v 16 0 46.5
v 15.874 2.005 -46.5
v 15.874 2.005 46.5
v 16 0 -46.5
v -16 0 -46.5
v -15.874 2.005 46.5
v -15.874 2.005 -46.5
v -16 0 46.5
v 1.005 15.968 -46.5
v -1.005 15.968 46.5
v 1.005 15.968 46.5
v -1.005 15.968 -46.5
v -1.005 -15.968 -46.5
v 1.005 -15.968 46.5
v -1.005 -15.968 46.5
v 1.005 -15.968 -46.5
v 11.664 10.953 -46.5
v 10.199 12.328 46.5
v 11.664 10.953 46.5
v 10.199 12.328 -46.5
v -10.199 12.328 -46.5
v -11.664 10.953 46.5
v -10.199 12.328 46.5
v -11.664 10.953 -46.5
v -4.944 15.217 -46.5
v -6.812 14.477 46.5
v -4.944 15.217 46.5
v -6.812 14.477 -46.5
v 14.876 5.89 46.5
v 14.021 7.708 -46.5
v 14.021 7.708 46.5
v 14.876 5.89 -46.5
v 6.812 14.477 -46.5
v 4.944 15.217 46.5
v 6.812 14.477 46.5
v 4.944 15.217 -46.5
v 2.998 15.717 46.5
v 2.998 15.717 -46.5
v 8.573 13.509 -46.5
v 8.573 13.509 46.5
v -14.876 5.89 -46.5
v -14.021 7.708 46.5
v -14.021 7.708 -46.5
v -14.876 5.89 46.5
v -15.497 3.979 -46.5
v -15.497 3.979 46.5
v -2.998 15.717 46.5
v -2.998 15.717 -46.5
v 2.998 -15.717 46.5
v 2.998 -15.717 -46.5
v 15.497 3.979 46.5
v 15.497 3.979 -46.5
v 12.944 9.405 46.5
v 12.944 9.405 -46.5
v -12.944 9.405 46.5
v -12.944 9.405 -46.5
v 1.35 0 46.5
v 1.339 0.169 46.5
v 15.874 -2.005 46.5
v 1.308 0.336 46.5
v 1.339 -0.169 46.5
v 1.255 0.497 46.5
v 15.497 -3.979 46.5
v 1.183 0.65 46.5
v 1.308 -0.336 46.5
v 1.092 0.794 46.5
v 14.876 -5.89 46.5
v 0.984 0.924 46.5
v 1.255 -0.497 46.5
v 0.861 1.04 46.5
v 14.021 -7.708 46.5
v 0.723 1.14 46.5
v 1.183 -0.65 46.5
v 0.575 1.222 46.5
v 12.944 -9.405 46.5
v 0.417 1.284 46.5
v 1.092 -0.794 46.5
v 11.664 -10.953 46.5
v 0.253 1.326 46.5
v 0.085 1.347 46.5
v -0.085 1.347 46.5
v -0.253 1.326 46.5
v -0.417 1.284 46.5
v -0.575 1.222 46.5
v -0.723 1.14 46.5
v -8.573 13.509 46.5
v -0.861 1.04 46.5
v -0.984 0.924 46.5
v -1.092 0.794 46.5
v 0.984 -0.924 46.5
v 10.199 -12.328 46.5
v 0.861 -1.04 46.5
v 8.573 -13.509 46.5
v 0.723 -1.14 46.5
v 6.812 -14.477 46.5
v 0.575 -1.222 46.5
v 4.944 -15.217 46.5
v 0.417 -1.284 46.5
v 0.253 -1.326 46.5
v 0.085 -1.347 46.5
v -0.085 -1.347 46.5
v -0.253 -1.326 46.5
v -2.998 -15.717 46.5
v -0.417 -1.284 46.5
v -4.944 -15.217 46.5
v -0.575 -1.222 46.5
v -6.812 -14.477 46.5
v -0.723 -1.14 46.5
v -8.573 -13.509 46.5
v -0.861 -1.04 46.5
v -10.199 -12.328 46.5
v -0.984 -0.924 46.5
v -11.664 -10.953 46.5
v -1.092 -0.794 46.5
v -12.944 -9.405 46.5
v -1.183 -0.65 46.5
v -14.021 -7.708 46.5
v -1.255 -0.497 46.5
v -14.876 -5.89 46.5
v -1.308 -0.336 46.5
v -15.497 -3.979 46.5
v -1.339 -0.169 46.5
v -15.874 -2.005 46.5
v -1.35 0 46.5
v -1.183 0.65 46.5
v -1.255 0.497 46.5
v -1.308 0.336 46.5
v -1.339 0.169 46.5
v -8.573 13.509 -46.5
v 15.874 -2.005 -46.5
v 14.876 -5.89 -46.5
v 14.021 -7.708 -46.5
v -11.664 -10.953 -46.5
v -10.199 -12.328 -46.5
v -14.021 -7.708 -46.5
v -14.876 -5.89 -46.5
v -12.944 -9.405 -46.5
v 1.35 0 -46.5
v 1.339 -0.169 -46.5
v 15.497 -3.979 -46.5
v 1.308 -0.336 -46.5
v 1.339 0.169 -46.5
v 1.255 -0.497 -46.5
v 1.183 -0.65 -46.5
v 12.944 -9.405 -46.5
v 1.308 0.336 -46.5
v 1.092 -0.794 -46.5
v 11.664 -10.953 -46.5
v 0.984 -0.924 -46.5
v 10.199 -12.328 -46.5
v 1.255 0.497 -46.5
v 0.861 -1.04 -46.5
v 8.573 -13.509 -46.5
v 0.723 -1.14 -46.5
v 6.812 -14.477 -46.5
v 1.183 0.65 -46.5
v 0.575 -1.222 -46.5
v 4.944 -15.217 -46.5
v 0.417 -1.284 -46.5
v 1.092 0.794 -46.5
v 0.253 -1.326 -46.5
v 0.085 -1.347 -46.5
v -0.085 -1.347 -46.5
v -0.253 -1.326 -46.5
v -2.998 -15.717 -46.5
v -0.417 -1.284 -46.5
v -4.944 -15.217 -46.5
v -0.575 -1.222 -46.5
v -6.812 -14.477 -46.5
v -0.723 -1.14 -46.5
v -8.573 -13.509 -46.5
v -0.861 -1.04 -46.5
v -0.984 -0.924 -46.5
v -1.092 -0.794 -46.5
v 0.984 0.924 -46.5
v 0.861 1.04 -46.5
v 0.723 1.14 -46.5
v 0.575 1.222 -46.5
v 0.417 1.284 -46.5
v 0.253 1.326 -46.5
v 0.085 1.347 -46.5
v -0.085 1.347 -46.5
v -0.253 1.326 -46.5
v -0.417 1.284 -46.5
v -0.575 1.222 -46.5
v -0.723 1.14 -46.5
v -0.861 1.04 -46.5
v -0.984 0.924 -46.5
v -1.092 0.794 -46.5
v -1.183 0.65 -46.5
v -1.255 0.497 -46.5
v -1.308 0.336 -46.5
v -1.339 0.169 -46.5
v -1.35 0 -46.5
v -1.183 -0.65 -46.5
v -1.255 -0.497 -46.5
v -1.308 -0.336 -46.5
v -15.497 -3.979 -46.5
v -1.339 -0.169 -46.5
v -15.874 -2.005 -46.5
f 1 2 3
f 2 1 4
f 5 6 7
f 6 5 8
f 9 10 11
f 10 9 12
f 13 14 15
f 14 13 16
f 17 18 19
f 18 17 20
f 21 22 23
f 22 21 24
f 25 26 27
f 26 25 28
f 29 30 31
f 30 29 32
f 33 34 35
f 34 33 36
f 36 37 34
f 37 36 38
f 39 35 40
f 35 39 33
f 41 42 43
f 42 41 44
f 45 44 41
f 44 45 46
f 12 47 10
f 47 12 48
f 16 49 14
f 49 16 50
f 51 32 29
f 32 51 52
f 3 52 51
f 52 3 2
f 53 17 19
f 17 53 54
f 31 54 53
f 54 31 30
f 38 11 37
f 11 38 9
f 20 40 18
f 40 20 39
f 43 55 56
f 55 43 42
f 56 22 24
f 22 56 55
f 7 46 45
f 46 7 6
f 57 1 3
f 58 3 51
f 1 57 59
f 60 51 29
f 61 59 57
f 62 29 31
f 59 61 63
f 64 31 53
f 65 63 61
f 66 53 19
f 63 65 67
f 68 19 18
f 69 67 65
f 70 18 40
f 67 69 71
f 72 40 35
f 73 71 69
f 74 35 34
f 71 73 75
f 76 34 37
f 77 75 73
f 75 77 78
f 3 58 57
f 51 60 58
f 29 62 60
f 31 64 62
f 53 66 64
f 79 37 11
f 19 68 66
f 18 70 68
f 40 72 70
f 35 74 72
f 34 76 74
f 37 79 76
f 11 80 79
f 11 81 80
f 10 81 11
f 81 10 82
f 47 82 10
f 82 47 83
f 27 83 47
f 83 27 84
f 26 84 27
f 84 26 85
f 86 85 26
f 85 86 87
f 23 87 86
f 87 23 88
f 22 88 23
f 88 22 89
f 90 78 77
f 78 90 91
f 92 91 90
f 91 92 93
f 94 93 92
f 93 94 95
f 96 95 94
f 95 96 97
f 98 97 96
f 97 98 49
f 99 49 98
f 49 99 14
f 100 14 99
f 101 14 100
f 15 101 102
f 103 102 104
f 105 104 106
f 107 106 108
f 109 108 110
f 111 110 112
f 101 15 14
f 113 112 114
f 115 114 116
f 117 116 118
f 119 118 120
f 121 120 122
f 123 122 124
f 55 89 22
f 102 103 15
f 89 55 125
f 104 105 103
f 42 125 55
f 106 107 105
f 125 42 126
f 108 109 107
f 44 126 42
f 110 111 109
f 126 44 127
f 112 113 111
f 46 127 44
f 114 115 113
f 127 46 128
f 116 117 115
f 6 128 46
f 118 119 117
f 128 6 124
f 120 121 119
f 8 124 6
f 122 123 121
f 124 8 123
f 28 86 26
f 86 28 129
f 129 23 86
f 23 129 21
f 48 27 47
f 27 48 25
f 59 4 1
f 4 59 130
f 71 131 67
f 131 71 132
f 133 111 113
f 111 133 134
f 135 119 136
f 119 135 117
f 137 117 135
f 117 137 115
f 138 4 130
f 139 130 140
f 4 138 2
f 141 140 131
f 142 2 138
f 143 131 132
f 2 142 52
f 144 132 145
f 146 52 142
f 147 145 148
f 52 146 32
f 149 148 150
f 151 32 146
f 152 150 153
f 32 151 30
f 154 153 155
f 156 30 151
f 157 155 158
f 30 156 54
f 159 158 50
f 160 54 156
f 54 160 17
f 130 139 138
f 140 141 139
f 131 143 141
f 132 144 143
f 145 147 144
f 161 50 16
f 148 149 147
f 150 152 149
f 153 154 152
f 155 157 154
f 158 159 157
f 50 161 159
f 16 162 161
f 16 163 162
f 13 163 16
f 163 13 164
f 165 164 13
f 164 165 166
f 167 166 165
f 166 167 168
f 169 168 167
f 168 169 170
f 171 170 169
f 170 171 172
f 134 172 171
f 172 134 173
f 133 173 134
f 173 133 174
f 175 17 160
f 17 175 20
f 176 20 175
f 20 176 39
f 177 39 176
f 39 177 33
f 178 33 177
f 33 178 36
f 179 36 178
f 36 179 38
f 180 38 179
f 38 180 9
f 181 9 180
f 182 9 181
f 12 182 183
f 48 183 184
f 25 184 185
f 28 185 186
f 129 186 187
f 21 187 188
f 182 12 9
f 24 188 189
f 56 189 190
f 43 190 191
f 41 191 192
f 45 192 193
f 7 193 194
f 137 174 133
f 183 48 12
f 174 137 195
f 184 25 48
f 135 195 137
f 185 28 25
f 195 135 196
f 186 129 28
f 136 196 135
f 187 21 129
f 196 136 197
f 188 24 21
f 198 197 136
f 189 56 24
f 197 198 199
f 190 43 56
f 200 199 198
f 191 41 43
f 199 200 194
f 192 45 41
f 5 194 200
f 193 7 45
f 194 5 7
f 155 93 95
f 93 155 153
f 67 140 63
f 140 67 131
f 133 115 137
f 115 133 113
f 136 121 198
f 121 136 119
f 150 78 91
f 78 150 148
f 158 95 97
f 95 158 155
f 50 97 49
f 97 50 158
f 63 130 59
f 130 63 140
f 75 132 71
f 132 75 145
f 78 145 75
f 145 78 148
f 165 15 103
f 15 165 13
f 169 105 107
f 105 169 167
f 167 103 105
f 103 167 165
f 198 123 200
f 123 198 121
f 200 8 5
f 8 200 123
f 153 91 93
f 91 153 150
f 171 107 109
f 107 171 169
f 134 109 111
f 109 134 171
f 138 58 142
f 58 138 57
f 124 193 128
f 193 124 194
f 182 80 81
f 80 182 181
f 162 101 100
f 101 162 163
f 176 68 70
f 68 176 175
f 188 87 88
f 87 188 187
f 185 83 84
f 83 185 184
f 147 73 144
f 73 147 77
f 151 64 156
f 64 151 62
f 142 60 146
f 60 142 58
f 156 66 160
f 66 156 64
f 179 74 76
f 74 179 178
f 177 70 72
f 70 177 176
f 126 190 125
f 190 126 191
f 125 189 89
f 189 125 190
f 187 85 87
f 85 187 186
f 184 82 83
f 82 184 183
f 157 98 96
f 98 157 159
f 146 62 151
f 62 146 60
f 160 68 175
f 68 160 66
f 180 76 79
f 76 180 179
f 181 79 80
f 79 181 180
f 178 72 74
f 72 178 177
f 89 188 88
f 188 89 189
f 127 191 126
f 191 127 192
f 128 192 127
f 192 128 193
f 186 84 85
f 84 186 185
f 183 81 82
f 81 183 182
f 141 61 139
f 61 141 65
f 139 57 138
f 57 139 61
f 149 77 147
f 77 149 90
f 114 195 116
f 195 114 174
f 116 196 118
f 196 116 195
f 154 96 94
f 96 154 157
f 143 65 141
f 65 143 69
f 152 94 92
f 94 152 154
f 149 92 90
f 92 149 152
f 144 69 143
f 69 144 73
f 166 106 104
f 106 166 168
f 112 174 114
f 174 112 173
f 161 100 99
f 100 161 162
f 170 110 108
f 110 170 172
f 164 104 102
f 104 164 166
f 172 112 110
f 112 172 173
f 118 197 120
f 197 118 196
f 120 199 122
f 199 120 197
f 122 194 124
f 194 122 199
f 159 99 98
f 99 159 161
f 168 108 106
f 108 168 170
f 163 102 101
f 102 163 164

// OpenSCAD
$fn = 50;


difference() {
	union() {
		translate(v = [0, 0, -46.5000000000]) {
			cylinder(h = 93, r = 16.0000000000);
		}
	}
	union() {
		translate(v = [0, 0, -100.0000000000]) {
			cylinder(h = 200, r = 1.3500000000);
		}
	}
}
